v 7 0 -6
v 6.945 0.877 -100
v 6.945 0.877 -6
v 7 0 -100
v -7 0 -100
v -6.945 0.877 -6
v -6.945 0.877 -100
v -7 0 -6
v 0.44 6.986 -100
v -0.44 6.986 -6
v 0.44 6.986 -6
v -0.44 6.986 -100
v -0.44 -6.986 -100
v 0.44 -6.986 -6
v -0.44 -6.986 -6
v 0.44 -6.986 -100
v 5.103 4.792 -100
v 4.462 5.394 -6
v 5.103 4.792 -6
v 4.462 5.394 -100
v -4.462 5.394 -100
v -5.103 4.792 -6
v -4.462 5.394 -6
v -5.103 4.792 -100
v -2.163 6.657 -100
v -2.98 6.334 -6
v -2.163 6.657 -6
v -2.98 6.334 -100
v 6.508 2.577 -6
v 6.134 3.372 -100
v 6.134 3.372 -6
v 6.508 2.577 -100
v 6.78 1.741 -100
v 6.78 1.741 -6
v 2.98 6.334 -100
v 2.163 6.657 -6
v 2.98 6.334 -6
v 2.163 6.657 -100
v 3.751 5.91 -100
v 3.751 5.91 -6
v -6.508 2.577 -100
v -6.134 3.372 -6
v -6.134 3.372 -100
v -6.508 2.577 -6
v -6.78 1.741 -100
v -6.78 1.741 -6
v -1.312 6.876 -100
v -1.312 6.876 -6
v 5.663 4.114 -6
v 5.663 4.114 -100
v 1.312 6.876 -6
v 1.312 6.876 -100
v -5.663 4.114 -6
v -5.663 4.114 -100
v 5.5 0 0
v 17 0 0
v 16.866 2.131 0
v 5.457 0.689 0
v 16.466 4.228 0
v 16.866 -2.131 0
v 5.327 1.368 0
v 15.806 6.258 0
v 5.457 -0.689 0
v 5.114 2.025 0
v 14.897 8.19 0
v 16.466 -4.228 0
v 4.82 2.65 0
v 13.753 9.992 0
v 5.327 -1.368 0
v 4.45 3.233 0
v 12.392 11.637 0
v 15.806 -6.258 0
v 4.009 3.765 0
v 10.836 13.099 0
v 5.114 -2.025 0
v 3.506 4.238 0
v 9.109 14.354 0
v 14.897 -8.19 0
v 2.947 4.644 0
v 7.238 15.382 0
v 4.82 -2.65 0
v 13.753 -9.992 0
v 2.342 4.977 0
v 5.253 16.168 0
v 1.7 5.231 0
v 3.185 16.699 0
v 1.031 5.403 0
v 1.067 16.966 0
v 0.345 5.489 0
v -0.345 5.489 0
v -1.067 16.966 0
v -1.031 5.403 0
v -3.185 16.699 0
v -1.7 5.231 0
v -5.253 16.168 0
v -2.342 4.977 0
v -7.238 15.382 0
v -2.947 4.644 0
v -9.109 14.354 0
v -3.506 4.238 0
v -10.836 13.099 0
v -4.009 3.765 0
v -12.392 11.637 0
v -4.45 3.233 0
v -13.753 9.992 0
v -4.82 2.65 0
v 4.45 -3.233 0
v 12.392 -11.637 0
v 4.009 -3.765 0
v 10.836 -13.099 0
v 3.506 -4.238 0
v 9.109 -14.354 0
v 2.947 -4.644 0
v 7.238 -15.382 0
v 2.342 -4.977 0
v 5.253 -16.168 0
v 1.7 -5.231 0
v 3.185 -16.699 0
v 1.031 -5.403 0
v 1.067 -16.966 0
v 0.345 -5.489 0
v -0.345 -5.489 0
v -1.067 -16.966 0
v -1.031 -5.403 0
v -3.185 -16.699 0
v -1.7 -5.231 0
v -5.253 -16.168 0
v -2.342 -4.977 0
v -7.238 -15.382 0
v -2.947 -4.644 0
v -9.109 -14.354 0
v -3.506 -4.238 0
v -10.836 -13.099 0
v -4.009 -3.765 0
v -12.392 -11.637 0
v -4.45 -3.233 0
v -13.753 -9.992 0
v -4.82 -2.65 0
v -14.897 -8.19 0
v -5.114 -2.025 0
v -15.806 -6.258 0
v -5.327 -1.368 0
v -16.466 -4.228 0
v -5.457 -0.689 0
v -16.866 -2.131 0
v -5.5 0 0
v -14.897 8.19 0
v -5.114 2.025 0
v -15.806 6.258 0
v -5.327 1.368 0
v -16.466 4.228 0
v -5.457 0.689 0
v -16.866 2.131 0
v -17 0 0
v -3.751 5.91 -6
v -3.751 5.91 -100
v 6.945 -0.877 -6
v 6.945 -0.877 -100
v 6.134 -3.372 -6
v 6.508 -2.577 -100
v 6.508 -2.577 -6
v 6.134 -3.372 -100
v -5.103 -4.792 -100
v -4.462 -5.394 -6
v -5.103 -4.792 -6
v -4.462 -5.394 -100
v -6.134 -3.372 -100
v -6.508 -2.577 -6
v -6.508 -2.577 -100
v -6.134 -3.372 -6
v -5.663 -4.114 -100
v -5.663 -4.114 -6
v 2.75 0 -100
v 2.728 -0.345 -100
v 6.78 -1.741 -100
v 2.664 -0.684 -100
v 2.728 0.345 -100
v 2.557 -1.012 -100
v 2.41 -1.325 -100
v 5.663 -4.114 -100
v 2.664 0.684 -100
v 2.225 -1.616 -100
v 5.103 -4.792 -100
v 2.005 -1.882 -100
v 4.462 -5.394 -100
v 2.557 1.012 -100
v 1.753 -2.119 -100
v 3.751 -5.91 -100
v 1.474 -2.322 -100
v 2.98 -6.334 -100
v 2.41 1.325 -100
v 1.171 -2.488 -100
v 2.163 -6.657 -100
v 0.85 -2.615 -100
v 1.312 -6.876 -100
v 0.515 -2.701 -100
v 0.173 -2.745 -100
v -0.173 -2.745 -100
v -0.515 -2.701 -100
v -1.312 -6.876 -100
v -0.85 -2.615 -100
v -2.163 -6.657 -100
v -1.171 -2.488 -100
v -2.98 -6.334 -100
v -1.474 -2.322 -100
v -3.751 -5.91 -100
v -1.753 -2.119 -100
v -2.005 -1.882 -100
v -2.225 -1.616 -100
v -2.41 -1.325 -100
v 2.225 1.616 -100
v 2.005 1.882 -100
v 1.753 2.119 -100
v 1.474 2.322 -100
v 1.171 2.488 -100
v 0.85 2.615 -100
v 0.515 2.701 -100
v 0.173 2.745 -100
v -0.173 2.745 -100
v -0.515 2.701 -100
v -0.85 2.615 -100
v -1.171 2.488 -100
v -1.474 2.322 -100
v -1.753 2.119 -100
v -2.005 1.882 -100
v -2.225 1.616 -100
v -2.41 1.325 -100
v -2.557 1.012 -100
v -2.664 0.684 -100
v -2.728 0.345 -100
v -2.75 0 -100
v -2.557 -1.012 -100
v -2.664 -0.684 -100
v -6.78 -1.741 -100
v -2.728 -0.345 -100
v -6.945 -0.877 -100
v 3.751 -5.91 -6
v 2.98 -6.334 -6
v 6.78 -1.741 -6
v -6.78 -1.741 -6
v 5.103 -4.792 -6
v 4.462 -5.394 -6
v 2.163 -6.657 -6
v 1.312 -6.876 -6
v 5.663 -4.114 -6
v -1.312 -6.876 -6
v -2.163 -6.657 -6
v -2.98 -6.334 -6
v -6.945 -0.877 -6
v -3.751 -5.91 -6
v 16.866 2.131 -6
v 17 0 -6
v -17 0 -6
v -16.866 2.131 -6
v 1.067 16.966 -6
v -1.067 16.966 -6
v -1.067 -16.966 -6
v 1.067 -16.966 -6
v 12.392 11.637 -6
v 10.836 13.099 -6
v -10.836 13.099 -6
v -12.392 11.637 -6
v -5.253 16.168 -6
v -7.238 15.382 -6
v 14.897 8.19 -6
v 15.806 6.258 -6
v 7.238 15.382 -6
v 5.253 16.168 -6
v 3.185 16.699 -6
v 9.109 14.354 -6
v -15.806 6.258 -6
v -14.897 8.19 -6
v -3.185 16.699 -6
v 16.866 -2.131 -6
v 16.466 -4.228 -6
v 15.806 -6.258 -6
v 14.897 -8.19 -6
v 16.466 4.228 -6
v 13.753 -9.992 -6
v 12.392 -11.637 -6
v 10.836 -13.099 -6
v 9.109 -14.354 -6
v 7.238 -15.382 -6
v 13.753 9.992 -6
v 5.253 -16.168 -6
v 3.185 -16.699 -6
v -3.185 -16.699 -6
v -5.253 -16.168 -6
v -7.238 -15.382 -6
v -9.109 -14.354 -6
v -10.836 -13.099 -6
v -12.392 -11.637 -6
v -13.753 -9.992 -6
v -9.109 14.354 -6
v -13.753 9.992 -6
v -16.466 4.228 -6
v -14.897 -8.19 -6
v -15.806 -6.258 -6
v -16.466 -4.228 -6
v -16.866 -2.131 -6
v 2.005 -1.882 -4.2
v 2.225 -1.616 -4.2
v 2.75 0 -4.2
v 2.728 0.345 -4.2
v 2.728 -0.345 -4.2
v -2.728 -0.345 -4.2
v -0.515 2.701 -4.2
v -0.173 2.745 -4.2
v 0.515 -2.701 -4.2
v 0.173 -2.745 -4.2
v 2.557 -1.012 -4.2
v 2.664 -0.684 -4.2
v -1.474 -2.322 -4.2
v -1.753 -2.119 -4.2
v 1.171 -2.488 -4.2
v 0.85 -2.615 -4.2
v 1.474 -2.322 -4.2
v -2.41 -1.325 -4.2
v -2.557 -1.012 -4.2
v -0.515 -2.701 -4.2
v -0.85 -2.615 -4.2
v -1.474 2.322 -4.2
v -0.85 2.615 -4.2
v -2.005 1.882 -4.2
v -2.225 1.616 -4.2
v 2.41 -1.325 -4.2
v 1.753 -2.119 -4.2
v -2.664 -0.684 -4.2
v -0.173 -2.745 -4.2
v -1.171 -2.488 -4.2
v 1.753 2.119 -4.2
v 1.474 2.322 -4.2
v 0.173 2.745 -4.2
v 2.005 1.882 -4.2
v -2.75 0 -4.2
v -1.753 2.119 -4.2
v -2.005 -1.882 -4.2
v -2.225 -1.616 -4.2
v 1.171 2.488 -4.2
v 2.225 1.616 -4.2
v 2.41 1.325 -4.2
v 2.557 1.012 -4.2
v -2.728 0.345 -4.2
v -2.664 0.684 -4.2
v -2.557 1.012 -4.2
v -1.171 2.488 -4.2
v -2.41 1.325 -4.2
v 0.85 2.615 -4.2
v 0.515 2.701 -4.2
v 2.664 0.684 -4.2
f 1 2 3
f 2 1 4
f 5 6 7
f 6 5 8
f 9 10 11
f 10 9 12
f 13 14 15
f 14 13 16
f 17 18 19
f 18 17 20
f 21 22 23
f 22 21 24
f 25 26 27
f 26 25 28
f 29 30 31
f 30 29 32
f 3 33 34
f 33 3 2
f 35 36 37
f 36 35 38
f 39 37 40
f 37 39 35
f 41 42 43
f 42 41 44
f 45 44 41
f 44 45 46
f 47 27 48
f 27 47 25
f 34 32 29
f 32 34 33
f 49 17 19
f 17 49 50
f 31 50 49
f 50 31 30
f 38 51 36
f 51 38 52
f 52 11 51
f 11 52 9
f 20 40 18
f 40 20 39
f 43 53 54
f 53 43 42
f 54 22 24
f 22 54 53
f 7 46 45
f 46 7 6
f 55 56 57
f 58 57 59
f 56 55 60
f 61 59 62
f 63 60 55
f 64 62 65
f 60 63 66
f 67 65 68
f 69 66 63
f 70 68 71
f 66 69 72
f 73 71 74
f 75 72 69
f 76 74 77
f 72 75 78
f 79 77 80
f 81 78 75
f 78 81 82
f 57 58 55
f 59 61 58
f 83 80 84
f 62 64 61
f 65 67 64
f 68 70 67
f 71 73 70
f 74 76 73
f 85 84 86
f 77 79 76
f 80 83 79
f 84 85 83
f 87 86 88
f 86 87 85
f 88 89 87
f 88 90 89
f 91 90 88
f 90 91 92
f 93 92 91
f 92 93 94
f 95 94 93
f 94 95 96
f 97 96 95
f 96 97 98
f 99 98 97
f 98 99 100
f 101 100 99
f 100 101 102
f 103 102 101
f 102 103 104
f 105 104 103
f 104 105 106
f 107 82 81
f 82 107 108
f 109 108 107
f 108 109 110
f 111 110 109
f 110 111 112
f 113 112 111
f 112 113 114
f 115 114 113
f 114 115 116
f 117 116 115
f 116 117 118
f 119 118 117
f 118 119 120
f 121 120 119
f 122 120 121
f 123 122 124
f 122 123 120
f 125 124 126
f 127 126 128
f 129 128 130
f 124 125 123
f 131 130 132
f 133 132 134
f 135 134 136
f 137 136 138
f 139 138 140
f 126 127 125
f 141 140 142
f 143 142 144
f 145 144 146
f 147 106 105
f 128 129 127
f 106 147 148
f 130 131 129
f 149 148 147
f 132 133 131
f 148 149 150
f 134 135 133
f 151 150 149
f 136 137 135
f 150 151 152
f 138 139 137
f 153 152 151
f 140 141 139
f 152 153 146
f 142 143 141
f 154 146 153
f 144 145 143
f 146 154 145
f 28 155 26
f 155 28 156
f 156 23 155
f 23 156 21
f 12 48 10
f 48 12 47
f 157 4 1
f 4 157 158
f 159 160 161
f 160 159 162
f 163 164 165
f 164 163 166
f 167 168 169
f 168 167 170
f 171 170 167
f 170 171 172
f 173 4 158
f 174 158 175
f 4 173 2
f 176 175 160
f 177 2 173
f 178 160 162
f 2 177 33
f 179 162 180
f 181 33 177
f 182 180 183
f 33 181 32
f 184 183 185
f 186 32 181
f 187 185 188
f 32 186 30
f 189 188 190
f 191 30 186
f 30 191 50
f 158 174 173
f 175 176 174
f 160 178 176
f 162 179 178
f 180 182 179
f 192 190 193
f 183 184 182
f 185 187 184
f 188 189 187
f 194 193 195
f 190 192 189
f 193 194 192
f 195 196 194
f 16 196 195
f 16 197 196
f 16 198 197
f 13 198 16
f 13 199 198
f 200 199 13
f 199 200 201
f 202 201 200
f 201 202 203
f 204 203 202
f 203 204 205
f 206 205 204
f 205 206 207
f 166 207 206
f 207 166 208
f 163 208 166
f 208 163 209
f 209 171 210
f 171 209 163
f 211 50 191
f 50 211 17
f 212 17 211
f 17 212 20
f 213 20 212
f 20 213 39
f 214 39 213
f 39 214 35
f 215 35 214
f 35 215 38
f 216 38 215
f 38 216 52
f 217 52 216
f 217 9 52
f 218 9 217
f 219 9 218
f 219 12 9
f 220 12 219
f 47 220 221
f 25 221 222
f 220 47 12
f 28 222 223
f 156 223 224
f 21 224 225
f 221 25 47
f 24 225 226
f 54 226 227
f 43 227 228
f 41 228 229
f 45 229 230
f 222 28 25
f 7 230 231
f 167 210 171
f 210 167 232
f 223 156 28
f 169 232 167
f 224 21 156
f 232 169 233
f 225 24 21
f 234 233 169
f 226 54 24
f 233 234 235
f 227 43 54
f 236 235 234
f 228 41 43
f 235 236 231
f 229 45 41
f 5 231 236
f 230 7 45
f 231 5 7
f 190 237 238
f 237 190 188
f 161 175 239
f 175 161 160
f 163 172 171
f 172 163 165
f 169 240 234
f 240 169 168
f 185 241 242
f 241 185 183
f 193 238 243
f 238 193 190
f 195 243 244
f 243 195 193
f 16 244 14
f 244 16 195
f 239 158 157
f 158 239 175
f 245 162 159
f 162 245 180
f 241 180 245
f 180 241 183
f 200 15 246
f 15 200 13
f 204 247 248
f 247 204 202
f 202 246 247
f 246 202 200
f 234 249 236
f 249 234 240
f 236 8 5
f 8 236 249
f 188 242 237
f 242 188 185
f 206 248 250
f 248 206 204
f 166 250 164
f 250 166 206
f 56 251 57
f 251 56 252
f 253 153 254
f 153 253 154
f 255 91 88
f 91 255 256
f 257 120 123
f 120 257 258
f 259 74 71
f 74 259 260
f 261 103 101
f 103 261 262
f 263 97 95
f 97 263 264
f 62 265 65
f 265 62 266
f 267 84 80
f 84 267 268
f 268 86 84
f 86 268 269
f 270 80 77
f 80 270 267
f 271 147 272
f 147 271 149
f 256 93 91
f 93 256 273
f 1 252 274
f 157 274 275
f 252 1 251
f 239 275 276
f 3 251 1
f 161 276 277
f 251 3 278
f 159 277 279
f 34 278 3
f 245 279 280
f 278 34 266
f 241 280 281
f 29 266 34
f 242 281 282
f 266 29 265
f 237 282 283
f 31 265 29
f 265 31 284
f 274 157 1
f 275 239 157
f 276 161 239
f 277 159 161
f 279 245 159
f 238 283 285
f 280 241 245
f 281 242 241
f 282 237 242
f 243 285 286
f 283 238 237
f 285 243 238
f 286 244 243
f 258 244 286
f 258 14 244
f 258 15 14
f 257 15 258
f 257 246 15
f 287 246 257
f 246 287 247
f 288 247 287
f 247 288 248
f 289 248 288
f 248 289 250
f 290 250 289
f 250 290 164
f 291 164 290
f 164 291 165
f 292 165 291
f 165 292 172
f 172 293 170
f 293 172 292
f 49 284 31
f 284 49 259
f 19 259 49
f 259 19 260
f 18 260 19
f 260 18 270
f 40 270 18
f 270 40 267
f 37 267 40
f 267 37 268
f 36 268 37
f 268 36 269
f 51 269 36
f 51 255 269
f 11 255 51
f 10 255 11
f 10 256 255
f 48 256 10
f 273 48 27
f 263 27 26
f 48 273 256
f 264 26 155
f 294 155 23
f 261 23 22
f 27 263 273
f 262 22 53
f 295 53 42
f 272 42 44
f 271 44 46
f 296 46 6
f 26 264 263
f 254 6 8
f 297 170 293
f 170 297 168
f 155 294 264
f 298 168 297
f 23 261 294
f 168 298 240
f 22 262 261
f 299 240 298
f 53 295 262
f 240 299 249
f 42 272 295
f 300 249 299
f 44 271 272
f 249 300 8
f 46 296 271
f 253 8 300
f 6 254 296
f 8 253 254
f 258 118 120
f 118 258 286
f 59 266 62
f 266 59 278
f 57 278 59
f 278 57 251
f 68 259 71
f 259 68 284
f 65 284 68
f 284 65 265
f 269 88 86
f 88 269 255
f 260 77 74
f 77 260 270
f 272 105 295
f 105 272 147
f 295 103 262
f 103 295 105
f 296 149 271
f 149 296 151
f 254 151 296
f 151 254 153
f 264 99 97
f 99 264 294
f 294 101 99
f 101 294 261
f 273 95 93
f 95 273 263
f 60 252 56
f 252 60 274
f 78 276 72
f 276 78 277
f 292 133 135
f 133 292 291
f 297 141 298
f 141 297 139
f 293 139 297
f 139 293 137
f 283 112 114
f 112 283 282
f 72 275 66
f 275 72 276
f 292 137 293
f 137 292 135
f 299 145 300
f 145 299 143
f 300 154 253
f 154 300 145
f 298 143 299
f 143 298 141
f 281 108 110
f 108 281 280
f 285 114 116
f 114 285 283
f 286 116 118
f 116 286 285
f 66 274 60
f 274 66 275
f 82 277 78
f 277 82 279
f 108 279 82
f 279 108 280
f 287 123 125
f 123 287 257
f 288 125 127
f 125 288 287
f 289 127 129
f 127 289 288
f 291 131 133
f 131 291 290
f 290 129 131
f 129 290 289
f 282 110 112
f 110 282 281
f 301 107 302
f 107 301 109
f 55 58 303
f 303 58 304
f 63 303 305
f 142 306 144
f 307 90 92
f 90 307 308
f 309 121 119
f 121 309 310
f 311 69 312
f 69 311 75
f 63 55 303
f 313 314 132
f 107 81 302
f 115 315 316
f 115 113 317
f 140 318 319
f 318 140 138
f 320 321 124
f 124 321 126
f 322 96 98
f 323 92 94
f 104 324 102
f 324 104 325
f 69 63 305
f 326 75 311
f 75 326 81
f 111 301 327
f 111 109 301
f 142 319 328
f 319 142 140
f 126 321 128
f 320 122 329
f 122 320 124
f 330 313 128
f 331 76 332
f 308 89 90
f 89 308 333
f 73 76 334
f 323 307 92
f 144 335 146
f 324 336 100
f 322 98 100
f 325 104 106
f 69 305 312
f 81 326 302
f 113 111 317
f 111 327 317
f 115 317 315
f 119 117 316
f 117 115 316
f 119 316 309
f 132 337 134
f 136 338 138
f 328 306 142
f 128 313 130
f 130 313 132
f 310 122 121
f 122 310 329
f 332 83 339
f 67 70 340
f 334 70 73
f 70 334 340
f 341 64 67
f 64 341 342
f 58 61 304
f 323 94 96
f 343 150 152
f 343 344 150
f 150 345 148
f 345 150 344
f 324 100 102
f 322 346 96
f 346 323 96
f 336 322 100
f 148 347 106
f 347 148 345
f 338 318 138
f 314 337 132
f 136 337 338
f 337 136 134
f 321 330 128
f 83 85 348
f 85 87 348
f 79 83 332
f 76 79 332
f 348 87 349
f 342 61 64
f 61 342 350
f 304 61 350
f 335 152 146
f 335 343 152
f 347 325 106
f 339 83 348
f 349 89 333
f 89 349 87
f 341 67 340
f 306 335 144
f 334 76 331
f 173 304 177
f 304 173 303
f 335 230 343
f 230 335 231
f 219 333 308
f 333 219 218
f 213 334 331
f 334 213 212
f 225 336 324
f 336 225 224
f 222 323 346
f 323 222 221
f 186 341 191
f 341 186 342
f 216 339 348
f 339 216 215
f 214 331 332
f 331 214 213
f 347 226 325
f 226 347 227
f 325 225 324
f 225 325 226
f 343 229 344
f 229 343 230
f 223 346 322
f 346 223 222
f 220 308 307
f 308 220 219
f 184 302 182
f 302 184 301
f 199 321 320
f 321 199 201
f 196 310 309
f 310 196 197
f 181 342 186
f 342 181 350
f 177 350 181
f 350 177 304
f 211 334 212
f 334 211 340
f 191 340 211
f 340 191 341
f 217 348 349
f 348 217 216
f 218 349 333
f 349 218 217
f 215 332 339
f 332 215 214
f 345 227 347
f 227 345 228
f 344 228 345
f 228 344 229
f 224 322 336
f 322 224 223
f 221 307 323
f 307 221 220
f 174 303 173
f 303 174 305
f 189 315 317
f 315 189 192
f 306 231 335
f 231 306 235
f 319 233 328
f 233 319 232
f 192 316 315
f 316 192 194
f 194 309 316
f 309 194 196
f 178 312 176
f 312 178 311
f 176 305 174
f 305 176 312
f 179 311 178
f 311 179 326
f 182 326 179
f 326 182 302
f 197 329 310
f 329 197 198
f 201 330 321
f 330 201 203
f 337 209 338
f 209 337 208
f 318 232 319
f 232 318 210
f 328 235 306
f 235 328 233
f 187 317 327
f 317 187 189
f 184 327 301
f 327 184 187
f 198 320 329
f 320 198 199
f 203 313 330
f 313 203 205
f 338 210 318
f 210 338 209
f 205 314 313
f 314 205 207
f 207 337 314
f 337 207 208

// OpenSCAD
$fn = 50;


difference() {
	union() {
		translate(v = [0, 0, -100.0000000000]) {
			cylinder(h = 100, r = 7.0000000000);
		}
		translate(v = [0, 0, -6.0000000000]) {
			cylinder(h = 6, r = 17.0000000000);
		}
	}
	union() {
		translate(v = [0, 0, 0]) {
			rotate(a = [0, 0, 0]) {
				difference() {
					union() {
						#translate(v = [0, 0, -100.0000000000]) {
							cylinder(h = 100, r = 2.2500000000);
						}
						#translate(v = [0, 0, -4.2000000000]) {
							cylinder(h = 4.2000000000, r1 = 2.7500000000, r2 = 5.5000000000);
						}
						#translate(v = [0, 0, -100.0000000000]) {
							cylinder(h = 100, r = 2.7500000000);
						}
						#translate(v = [0, 0, -100.0000000000]) {
							cylinder(h = 100, r = 2.2500000000);
						}
					}
					union();
				}
			}
		}
	}
}
